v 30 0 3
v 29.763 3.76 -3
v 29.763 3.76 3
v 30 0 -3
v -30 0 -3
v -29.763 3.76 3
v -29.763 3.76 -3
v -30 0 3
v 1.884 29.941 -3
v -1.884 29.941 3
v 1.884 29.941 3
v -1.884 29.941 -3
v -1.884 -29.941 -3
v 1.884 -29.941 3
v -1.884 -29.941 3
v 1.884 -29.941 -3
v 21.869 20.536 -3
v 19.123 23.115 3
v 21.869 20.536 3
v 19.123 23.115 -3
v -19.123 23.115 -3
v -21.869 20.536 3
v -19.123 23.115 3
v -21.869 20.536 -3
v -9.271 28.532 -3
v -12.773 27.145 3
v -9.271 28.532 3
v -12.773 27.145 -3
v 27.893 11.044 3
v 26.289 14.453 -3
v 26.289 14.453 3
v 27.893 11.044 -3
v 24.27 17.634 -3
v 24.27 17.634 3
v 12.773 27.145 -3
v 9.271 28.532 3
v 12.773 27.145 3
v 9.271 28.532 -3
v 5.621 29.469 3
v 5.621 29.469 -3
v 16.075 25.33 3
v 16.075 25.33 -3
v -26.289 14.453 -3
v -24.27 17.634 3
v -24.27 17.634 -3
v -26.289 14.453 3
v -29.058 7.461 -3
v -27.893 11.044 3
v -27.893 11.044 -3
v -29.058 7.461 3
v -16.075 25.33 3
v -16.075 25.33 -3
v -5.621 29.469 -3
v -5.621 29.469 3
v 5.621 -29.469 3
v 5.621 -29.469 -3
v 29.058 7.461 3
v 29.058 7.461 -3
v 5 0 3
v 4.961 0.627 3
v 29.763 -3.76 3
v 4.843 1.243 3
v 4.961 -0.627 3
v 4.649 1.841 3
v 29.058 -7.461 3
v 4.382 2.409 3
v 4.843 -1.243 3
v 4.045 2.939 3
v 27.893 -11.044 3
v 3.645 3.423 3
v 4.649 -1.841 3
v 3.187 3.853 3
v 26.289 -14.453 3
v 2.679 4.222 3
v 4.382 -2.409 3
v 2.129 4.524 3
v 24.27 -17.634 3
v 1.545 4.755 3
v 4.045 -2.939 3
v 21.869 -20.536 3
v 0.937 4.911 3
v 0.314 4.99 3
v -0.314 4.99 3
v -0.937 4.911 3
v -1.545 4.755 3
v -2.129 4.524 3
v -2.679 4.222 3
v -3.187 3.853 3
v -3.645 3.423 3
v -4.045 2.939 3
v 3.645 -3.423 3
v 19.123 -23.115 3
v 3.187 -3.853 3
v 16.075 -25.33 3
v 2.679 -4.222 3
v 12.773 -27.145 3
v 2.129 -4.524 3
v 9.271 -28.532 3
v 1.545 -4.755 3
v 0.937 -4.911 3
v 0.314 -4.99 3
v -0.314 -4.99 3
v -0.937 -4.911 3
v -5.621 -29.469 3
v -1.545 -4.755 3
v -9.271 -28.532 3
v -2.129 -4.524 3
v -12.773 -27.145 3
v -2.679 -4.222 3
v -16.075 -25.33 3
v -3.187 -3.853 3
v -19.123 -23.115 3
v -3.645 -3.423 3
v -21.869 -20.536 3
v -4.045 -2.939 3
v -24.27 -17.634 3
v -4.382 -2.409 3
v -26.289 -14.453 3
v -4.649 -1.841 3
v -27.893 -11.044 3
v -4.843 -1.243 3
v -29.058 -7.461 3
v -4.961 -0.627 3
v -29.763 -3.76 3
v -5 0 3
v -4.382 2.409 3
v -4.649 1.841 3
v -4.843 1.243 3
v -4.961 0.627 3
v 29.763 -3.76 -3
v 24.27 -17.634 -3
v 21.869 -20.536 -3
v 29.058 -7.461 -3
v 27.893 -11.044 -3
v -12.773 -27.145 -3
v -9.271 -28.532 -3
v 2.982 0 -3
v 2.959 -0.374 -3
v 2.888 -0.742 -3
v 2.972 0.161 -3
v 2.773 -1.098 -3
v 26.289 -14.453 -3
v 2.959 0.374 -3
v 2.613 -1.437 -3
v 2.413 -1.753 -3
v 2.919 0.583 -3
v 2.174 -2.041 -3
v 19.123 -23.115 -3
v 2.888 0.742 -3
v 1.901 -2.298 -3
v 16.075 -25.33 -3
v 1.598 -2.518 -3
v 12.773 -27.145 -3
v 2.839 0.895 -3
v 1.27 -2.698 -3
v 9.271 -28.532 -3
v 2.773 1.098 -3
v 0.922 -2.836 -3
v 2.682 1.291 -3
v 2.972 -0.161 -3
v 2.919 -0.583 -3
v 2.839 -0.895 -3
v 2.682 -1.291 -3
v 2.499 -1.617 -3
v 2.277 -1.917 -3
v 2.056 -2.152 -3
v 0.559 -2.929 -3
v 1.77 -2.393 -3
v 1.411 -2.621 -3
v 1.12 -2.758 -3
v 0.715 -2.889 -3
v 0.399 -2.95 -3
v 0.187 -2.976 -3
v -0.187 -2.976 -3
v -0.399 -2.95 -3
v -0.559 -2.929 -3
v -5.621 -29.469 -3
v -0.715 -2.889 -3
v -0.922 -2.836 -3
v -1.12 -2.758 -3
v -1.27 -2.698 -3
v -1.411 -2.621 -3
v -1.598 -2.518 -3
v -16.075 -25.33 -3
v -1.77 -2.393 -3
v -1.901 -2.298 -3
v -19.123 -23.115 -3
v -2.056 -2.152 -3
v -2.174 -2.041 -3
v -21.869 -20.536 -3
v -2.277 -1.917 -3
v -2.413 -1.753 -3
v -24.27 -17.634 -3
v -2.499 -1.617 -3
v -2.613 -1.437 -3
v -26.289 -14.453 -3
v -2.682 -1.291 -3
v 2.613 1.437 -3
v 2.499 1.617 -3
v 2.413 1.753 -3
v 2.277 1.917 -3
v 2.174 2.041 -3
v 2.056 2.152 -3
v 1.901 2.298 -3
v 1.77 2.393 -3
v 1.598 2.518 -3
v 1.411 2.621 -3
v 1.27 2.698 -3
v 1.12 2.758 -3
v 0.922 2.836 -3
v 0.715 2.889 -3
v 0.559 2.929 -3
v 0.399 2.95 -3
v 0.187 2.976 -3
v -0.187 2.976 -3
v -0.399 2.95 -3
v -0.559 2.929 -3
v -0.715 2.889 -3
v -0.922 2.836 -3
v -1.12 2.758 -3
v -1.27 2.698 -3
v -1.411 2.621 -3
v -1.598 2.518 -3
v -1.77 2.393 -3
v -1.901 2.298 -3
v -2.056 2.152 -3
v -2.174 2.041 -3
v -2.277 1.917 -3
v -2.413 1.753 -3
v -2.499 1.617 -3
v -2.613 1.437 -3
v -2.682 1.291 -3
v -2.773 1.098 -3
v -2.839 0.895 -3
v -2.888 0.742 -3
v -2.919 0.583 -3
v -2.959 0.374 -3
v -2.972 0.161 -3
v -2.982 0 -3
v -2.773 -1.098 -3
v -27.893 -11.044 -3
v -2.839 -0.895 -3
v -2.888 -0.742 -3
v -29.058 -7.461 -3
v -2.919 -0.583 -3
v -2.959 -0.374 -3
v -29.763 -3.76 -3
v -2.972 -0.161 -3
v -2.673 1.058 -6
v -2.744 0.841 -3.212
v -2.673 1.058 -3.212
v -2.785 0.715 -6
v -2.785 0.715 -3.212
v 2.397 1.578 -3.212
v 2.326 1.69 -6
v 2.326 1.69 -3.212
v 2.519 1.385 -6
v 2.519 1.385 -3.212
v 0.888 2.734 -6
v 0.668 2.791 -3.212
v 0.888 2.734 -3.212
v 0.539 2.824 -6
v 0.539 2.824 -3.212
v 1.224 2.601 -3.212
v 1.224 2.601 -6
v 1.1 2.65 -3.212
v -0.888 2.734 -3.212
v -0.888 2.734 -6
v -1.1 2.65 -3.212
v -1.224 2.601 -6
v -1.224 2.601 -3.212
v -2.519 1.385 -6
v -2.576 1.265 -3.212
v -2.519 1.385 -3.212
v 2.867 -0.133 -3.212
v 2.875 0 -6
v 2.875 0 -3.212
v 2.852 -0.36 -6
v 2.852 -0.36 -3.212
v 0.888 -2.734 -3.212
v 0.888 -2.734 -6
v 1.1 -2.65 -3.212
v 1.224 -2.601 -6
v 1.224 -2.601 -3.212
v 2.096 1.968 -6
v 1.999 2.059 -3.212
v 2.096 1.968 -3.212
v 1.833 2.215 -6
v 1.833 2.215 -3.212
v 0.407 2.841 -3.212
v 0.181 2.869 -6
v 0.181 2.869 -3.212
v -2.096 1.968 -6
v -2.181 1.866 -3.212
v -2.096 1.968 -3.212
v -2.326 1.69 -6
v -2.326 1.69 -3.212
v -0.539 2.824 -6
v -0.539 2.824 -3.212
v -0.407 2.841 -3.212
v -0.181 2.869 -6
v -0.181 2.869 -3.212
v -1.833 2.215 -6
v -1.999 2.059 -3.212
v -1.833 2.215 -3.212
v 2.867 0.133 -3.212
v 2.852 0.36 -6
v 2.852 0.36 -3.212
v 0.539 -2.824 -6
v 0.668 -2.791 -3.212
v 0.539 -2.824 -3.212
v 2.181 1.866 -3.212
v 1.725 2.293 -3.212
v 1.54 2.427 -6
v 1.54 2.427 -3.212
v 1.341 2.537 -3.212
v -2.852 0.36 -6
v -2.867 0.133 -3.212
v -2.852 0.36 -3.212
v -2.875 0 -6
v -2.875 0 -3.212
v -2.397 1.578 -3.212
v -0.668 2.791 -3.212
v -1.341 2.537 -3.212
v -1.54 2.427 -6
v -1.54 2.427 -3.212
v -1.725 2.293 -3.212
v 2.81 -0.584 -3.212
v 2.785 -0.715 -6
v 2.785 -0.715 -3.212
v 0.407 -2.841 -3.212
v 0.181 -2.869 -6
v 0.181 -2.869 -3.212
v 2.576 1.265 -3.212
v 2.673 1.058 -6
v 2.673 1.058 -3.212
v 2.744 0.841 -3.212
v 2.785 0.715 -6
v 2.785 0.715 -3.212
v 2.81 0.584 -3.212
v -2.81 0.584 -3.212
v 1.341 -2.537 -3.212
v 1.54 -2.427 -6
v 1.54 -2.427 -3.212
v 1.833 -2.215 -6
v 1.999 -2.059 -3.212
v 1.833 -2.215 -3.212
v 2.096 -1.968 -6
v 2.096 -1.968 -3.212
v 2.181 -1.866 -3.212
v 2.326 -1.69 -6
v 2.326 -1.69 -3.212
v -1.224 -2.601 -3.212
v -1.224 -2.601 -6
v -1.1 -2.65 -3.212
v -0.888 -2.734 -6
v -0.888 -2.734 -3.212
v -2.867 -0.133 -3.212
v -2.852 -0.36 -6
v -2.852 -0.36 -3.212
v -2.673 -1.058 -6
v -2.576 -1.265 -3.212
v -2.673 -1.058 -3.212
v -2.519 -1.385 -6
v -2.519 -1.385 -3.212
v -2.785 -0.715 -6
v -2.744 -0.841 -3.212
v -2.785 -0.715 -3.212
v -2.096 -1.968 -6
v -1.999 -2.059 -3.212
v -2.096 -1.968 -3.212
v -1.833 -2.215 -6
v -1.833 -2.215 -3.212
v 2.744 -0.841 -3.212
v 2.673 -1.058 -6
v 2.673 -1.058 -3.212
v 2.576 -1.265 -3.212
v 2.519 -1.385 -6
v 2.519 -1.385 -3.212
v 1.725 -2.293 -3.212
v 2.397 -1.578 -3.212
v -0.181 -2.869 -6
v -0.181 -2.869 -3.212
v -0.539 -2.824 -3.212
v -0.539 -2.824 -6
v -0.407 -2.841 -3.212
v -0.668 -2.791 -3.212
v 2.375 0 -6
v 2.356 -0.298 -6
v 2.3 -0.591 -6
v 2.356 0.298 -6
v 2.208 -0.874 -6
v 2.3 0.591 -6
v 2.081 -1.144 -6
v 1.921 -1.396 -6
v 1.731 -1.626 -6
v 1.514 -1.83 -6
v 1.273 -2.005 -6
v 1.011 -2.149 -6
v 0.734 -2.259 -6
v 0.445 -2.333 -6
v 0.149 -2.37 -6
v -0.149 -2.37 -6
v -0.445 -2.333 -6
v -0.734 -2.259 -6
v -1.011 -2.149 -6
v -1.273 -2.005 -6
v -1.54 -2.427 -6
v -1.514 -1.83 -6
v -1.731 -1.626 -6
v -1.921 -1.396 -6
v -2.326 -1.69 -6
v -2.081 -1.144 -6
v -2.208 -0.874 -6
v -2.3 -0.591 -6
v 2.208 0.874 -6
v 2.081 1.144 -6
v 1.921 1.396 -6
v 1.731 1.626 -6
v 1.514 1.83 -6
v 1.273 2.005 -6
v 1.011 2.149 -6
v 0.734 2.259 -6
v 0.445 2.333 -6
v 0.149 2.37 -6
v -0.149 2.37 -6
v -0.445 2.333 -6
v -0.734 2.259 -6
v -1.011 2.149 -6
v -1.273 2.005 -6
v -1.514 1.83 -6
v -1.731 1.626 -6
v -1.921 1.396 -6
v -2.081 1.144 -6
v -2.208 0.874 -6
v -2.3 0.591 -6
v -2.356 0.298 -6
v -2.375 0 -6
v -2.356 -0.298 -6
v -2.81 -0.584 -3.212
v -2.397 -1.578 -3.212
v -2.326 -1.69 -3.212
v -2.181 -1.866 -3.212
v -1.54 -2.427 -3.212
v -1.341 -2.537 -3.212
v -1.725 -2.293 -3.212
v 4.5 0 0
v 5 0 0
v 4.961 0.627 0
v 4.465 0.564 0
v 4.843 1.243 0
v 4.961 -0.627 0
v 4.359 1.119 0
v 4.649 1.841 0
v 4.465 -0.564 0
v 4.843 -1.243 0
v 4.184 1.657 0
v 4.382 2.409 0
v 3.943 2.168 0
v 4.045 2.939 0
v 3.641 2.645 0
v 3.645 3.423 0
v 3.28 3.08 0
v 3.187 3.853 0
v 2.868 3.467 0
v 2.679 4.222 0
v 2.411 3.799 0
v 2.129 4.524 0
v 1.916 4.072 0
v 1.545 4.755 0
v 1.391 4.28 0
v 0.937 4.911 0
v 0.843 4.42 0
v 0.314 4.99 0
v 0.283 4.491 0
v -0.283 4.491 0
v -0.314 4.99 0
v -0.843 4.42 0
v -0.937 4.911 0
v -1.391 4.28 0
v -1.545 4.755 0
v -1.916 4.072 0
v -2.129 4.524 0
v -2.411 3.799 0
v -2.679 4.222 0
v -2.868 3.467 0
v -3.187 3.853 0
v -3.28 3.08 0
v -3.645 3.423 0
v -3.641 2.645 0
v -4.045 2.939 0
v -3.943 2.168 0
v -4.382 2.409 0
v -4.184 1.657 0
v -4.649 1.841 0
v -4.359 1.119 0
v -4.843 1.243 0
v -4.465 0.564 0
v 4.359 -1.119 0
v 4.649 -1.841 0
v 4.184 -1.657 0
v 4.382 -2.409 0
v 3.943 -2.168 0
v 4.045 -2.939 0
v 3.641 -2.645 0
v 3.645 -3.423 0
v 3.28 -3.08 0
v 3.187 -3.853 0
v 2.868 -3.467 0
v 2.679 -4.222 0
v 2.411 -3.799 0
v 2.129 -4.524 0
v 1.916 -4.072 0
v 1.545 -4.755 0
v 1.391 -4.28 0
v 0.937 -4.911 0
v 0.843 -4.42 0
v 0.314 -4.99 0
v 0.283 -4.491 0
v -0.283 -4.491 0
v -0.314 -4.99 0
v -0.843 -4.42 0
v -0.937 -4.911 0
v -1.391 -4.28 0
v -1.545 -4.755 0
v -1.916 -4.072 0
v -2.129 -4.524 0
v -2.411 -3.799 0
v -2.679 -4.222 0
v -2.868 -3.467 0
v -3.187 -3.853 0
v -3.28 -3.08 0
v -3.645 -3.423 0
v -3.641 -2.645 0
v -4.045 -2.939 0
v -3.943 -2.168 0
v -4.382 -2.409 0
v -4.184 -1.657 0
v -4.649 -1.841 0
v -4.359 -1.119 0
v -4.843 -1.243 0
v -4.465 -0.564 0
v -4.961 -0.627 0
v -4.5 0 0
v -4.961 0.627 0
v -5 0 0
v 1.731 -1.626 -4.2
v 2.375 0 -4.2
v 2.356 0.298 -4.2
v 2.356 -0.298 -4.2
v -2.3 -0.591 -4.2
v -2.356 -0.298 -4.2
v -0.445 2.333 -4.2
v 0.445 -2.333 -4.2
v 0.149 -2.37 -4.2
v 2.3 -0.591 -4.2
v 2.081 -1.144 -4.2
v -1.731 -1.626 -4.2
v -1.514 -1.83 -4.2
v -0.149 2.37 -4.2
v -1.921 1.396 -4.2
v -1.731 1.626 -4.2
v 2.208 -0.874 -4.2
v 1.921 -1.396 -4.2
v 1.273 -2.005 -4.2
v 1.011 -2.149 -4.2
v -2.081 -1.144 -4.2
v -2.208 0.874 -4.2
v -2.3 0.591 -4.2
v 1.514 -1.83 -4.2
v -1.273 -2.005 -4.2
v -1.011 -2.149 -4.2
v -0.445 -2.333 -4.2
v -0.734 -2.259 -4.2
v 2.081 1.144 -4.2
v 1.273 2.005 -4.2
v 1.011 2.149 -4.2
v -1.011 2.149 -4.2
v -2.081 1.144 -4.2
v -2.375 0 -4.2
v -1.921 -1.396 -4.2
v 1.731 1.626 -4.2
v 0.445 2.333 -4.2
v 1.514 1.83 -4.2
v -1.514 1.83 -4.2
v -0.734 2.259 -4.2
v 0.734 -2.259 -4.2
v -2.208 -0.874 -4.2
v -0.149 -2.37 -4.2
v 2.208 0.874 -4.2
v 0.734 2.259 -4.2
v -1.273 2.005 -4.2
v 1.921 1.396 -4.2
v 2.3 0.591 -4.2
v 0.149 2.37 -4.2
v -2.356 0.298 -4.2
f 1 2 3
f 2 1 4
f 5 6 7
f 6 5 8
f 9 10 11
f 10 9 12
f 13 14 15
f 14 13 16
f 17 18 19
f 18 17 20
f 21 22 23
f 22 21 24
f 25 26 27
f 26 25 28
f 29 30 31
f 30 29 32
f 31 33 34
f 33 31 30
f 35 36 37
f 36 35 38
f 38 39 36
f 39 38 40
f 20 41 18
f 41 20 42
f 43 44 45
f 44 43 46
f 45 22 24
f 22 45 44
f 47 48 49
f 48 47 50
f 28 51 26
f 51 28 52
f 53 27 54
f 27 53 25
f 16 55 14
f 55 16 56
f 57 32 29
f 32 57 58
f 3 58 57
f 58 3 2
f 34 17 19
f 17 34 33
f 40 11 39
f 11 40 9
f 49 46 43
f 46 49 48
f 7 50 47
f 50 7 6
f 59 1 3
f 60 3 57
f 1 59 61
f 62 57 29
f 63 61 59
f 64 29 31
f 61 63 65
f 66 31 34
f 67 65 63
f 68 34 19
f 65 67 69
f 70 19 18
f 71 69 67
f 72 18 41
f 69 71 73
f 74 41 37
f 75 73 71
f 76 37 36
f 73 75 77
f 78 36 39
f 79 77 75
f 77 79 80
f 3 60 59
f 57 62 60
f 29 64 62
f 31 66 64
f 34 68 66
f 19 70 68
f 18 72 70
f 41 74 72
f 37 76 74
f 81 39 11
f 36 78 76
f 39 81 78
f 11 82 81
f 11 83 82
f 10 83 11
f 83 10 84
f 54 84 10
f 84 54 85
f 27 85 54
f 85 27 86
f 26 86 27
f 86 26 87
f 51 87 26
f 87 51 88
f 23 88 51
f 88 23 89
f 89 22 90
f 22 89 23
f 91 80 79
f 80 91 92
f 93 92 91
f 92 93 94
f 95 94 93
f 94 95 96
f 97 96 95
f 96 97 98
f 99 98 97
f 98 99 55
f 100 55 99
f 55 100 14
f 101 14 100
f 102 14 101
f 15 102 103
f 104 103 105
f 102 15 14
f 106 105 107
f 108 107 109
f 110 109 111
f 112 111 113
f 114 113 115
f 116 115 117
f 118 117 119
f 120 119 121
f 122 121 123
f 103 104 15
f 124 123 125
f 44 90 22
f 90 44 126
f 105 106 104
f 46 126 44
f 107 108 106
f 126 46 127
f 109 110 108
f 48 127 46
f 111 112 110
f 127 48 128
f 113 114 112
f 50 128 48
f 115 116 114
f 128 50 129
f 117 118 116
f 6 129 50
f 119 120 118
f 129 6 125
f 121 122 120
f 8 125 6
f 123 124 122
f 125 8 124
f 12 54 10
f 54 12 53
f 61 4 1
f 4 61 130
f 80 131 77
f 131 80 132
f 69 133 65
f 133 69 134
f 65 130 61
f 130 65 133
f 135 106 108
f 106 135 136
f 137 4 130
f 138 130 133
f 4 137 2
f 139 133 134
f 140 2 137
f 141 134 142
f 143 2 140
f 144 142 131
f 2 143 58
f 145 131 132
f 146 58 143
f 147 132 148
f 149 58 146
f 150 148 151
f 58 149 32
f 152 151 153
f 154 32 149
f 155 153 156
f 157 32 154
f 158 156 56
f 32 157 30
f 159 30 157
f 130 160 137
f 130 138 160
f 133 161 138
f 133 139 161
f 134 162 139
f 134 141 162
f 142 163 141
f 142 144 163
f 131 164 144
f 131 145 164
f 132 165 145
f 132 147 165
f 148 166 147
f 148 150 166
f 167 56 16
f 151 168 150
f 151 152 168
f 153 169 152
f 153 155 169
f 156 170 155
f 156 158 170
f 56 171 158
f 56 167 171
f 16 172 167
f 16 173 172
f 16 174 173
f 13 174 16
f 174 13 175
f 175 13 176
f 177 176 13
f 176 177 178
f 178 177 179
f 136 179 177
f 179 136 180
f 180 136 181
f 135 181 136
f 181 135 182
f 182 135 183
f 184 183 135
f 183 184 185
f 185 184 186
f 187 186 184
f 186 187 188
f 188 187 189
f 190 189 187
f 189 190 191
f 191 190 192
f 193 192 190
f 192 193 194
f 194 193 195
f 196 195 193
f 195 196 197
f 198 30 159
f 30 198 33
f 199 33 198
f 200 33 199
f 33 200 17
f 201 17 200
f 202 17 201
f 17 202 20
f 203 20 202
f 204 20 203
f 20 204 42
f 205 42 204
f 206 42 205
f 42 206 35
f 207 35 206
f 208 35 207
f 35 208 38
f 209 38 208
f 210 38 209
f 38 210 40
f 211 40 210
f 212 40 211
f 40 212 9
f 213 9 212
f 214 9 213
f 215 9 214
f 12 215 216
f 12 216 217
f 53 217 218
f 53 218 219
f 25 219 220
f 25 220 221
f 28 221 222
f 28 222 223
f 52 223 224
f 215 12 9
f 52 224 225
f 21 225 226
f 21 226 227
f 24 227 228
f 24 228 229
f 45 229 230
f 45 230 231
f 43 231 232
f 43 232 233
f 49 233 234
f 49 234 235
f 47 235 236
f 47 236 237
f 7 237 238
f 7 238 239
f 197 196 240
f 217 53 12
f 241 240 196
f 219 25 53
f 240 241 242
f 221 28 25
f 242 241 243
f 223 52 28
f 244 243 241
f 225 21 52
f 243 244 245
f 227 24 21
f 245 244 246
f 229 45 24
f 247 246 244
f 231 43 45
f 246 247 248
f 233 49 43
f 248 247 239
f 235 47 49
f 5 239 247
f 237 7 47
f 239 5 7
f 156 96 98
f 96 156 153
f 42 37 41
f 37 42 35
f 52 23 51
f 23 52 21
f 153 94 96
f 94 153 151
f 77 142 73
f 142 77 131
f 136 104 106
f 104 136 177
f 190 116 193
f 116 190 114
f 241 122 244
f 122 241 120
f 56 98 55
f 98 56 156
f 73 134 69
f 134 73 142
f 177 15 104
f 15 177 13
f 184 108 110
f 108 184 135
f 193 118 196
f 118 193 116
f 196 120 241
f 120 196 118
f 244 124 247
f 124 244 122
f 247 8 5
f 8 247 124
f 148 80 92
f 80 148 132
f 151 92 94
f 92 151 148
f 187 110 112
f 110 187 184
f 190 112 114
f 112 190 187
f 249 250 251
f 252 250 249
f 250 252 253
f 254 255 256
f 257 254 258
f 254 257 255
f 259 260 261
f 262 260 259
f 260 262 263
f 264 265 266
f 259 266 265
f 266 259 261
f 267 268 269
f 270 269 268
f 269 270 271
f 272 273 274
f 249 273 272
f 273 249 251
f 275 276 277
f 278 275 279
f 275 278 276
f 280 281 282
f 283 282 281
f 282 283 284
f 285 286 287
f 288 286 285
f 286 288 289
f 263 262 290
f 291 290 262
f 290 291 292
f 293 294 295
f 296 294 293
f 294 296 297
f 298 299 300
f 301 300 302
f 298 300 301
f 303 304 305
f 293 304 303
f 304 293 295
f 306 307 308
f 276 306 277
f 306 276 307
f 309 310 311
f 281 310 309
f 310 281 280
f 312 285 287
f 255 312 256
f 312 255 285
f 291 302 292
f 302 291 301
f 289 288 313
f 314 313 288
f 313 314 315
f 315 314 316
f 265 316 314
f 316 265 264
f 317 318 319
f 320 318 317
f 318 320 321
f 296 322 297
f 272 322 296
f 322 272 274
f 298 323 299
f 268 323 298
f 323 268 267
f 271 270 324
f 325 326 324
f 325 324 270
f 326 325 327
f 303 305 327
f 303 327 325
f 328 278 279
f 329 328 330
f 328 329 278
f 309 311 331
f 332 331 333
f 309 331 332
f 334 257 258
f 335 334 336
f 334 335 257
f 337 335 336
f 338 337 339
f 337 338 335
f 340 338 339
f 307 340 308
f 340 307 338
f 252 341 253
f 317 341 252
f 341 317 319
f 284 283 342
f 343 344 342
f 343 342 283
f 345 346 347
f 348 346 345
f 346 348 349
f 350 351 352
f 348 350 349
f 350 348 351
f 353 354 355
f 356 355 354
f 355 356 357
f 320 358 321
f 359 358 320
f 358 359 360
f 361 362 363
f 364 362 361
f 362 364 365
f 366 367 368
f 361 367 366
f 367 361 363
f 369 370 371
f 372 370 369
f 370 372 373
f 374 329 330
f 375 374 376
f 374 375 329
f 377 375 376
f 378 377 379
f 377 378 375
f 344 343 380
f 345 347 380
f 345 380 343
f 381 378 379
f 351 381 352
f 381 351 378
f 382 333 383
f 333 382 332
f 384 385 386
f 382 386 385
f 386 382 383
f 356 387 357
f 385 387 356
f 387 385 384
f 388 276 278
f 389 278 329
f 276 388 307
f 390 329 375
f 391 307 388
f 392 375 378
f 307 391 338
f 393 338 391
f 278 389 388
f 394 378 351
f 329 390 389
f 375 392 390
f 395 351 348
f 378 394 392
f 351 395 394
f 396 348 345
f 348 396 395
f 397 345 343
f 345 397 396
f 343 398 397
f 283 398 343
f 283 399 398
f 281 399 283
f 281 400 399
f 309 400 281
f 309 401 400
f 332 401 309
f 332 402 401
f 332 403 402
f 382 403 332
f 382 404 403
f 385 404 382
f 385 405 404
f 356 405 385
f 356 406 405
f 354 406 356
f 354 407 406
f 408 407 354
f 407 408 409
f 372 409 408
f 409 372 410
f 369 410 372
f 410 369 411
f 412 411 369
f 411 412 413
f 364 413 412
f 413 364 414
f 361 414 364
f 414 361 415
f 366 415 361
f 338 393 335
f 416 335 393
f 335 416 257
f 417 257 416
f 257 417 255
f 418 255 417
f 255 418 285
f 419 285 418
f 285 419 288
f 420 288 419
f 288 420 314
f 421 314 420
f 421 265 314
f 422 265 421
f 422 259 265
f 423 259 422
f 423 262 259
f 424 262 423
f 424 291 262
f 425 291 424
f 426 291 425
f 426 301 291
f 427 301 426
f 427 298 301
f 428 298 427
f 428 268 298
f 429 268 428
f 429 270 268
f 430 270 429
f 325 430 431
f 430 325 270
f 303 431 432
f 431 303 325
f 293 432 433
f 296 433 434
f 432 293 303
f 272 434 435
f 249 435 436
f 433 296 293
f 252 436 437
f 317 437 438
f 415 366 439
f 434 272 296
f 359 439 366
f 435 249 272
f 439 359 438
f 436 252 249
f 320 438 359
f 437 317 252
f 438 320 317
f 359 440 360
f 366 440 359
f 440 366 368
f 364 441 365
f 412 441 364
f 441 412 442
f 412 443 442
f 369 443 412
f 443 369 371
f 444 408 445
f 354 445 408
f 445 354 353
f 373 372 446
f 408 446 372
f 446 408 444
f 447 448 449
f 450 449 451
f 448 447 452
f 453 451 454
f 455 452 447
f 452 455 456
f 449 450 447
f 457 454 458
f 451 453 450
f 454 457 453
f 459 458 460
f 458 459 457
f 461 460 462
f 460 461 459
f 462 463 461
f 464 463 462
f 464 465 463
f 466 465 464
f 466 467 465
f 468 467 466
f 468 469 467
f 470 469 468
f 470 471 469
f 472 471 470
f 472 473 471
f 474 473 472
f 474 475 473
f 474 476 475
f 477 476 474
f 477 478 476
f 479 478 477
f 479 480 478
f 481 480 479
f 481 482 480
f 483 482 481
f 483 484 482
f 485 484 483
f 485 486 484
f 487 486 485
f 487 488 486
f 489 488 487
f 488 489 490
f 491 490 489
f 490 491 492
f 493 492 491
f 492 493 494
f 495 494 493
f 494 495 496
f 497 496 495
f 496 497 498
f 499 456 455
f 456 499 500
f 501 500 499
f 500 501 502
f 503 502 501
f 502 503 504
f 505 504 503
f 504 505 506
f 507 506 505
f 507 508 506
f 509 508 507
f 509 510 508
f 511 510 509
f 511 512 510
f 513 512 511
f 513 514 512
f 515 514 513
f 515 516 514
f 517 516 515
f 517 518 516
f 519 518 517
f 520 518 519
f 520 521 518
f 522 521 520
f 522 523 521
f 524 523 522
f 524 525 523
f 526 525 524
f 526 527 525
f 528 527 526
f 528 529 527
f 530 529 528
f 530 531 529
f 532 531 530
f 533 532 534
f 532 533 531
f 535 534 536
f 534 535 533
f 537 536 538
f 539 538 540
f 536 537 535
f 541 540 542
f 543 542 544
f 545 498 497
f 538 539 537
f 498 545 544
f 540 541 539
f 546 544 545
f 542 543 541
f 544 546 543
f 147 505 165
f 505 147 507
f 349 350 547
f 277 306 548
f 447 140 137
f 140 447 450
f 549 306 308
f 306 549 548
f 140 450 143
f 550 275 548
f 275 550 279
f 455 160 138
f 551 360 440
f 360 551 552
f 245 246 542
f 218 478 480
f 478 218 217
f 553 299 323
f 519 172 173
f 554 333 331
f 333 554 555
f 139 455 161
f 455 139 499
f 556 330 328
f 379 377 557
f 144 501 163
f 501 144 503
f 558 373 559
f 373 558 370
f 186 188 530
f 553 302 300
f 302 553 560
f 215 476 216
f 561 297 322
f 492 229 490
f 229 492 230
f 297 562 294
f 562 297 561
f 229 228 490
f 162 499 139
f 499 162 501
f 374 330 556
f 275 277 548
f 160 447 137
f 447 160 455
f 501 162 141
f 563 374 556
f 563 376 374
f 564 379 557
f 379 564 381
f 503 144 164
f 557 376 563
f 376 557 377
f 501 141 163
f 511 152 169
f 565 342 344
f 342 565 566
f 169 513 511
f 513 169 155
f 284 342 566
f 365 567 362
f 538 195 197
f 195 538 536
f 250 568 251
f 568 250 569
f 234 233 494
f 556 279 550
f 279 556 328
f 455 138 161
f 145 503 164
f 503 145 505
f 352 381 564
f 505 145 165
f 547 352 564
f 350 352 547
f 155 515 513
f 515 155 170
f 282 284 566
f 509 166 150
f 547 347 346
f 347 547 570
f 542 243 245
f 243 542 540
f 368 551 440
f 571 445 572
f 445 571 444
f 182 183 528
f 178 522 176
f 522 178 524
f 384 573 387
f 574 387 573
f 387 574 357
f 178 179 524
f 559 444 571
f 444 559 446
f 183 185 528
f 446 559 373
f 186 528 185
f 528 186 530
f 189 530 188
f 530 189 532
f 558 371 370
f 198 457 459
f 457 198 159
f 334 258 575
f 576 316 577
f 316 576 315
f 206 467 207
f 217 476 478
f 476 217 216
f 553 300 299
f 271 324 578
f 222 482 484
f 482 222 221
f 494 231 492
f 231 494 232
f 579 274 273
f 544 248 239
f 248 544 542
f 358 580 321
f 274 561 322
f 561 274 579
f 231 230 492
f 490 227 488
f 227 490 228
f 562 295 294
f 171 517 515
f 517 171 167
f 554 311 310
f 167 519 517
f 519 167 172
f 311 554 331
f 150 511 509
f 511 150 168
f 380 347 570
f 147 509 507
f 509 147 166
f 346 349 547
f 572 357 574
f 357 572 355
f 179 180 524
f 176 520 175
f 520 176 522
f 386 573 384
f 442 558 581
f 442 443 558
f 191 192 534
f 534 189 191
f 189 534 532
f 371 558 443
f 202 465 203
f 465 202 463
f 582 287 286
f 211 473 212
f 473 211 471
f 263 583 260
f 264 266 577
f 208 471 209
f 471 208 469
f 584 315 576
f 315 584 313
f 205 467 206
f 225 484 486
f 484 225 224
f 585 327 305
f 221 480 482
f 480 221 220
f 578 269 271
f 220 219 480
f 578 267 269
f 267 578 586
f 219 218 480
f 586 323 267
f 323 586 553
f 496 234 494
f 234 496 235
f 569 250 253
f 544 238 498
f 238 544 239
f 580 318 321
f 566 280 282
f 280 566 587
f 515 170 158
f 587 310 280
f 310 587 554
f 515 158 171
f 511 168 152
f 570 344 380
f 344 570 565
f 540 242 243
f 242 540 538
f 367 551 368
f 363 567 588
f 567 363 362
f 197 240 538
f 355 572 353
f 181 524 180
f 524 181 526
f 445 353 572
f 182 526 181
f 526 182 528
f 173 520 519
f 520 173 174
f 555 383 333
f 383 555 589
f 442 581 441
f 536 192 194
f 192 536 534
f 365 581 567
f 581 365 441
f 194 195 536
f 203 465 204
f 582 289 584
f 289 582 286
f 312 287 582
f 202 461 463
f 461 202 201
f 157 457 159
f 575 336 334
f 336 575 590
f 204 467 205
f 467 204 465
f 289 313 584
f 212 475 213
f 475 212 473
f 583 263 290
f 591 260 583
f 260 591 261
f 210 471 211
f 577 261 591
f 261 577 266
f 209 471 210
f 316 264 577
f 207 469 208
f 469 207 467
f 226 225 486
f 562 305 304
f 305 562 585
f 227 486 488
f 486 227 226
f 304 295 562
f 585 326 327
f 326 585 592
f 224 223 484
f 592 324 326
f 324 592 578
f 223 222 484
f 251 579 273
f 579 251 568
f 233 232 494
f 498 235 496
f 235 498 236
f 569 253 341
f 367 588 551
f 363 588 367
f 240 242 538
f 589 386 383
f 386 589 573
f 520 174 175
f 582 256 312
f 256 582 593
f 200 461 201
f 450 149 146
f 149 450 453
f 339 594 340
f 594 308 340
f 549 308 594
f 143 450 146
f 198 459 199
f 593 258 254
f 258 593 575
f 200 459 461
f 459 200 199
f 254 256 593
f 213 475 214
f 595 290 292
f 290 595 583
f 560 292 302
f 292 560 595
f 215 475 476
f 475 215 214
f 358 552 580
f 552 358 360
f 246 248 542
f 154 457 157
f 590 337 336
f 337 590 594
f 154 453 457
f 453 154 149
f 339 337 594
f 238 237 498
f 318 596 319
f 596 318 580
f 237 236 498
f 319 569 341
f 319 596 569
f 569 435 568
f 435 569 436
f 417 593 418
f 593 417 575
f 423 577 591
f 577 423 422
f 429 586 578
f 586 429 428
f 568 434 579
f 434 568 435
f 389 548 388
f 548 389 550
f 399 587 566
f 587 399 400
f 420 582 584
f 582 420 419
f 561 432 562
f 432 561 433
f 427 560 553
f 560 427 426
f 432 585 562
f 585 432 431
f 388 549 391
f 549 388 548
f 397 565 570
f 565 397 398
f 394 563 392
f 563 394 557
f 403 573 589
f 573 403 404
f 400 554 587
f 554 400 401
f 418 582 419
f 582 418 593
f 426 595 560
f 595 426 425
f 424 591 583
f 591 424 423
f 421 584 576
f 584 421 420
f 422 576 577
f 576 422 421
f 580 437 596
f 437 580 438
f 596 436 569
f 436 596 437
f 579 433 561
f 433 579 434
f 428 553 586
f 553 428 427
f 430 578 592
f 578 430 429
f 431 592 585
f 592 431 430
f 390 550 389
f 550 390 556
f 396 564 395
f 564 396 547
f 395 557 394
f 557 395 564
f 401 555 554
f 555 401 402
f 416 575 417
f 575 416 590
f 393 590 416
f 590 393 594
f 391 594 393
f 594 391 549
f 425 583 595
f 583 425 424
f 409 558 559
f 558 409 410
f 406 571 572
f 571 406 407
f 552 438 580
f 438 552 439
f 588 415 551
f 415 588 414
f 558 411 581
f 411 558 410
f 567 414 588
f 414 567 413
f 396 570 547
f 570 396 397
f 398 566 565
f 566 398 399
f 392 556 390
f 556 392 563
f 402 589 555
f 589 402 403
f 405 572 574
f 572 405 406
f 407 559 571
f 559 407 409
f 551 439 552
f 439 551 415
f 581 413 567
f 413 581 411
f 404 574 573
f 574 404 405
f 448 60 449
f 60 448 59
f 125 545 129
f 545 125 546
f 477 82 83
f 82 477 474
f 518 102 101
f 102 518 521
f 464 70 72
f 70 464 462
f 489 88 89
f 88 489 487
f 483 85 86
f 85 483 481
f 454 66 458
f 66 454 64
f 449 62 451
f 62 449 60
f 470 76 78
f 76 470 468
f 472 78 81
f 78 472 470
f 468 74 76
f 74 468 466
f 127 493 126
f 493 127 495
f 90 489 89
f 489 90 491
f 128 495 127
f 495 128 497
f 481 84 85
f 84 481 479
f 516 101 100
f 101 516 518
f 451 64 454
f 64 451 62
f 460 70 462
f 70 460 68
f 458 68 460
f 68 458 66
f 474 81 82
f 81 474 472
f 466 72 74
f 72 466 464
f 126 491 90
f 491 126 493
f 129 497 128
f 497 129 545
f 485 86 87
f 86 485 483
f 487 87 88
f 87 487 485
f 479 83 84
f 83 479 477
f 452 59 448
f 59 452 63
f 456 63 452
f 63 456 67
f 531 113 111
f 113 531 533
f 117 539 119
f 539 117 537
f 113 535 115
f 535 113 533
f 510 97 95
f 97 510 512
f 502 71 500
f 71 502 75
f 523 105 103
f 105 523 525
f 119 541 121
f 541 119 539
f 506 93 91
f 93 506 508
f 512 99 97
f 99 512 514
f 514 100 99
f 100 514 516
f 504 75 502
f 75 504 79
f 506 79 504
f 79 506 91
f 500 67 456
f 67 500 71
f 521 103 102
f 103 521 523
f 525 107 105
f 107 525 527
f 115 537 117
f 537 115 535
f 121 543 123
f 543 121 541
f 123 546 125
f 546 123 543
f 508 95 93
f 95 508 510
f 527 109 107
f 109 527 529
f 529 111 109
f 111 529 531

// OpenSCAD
$fn = 50;


difference() {
	union() {
		translate(v = [0, 0, -3.0000000000]) {
			cylinder(h = 6, r = 30.0000000000);
		}
		#translate(v = [0, 0, -6.0000000000]) {
			cylinder(h = 6, r = 2.8750000000);
		}
	}
	union() {
		translate(v = [0, 0, 0]) {
			rotate(a = [0, 0, 0]) {
				difference() {
					union() {
						translate(v = [0, 0, -6.0000000000]) {
							cylinder(h = 6, r = 2.2500000000);
						}
						translate(v = [0, 0, -4.2000000000]) {
							cylinder(h = 4.2000000000, r1 = 2.3750000000, r2 = 4.5000000000);
						}
						translate(v = [0, 0, -6.0000000000]) {
							cylinder(h = 6, r = 2.3750000000);
						}
						translate(v = [0, 0, -6.0000000000]) {
							cylinder(h = 6, r = 2.2500000000);
						}
					}
					union();
				}
			}
		}
		#cylinder(h = 3, r = 5.0000000000);
	}
}
